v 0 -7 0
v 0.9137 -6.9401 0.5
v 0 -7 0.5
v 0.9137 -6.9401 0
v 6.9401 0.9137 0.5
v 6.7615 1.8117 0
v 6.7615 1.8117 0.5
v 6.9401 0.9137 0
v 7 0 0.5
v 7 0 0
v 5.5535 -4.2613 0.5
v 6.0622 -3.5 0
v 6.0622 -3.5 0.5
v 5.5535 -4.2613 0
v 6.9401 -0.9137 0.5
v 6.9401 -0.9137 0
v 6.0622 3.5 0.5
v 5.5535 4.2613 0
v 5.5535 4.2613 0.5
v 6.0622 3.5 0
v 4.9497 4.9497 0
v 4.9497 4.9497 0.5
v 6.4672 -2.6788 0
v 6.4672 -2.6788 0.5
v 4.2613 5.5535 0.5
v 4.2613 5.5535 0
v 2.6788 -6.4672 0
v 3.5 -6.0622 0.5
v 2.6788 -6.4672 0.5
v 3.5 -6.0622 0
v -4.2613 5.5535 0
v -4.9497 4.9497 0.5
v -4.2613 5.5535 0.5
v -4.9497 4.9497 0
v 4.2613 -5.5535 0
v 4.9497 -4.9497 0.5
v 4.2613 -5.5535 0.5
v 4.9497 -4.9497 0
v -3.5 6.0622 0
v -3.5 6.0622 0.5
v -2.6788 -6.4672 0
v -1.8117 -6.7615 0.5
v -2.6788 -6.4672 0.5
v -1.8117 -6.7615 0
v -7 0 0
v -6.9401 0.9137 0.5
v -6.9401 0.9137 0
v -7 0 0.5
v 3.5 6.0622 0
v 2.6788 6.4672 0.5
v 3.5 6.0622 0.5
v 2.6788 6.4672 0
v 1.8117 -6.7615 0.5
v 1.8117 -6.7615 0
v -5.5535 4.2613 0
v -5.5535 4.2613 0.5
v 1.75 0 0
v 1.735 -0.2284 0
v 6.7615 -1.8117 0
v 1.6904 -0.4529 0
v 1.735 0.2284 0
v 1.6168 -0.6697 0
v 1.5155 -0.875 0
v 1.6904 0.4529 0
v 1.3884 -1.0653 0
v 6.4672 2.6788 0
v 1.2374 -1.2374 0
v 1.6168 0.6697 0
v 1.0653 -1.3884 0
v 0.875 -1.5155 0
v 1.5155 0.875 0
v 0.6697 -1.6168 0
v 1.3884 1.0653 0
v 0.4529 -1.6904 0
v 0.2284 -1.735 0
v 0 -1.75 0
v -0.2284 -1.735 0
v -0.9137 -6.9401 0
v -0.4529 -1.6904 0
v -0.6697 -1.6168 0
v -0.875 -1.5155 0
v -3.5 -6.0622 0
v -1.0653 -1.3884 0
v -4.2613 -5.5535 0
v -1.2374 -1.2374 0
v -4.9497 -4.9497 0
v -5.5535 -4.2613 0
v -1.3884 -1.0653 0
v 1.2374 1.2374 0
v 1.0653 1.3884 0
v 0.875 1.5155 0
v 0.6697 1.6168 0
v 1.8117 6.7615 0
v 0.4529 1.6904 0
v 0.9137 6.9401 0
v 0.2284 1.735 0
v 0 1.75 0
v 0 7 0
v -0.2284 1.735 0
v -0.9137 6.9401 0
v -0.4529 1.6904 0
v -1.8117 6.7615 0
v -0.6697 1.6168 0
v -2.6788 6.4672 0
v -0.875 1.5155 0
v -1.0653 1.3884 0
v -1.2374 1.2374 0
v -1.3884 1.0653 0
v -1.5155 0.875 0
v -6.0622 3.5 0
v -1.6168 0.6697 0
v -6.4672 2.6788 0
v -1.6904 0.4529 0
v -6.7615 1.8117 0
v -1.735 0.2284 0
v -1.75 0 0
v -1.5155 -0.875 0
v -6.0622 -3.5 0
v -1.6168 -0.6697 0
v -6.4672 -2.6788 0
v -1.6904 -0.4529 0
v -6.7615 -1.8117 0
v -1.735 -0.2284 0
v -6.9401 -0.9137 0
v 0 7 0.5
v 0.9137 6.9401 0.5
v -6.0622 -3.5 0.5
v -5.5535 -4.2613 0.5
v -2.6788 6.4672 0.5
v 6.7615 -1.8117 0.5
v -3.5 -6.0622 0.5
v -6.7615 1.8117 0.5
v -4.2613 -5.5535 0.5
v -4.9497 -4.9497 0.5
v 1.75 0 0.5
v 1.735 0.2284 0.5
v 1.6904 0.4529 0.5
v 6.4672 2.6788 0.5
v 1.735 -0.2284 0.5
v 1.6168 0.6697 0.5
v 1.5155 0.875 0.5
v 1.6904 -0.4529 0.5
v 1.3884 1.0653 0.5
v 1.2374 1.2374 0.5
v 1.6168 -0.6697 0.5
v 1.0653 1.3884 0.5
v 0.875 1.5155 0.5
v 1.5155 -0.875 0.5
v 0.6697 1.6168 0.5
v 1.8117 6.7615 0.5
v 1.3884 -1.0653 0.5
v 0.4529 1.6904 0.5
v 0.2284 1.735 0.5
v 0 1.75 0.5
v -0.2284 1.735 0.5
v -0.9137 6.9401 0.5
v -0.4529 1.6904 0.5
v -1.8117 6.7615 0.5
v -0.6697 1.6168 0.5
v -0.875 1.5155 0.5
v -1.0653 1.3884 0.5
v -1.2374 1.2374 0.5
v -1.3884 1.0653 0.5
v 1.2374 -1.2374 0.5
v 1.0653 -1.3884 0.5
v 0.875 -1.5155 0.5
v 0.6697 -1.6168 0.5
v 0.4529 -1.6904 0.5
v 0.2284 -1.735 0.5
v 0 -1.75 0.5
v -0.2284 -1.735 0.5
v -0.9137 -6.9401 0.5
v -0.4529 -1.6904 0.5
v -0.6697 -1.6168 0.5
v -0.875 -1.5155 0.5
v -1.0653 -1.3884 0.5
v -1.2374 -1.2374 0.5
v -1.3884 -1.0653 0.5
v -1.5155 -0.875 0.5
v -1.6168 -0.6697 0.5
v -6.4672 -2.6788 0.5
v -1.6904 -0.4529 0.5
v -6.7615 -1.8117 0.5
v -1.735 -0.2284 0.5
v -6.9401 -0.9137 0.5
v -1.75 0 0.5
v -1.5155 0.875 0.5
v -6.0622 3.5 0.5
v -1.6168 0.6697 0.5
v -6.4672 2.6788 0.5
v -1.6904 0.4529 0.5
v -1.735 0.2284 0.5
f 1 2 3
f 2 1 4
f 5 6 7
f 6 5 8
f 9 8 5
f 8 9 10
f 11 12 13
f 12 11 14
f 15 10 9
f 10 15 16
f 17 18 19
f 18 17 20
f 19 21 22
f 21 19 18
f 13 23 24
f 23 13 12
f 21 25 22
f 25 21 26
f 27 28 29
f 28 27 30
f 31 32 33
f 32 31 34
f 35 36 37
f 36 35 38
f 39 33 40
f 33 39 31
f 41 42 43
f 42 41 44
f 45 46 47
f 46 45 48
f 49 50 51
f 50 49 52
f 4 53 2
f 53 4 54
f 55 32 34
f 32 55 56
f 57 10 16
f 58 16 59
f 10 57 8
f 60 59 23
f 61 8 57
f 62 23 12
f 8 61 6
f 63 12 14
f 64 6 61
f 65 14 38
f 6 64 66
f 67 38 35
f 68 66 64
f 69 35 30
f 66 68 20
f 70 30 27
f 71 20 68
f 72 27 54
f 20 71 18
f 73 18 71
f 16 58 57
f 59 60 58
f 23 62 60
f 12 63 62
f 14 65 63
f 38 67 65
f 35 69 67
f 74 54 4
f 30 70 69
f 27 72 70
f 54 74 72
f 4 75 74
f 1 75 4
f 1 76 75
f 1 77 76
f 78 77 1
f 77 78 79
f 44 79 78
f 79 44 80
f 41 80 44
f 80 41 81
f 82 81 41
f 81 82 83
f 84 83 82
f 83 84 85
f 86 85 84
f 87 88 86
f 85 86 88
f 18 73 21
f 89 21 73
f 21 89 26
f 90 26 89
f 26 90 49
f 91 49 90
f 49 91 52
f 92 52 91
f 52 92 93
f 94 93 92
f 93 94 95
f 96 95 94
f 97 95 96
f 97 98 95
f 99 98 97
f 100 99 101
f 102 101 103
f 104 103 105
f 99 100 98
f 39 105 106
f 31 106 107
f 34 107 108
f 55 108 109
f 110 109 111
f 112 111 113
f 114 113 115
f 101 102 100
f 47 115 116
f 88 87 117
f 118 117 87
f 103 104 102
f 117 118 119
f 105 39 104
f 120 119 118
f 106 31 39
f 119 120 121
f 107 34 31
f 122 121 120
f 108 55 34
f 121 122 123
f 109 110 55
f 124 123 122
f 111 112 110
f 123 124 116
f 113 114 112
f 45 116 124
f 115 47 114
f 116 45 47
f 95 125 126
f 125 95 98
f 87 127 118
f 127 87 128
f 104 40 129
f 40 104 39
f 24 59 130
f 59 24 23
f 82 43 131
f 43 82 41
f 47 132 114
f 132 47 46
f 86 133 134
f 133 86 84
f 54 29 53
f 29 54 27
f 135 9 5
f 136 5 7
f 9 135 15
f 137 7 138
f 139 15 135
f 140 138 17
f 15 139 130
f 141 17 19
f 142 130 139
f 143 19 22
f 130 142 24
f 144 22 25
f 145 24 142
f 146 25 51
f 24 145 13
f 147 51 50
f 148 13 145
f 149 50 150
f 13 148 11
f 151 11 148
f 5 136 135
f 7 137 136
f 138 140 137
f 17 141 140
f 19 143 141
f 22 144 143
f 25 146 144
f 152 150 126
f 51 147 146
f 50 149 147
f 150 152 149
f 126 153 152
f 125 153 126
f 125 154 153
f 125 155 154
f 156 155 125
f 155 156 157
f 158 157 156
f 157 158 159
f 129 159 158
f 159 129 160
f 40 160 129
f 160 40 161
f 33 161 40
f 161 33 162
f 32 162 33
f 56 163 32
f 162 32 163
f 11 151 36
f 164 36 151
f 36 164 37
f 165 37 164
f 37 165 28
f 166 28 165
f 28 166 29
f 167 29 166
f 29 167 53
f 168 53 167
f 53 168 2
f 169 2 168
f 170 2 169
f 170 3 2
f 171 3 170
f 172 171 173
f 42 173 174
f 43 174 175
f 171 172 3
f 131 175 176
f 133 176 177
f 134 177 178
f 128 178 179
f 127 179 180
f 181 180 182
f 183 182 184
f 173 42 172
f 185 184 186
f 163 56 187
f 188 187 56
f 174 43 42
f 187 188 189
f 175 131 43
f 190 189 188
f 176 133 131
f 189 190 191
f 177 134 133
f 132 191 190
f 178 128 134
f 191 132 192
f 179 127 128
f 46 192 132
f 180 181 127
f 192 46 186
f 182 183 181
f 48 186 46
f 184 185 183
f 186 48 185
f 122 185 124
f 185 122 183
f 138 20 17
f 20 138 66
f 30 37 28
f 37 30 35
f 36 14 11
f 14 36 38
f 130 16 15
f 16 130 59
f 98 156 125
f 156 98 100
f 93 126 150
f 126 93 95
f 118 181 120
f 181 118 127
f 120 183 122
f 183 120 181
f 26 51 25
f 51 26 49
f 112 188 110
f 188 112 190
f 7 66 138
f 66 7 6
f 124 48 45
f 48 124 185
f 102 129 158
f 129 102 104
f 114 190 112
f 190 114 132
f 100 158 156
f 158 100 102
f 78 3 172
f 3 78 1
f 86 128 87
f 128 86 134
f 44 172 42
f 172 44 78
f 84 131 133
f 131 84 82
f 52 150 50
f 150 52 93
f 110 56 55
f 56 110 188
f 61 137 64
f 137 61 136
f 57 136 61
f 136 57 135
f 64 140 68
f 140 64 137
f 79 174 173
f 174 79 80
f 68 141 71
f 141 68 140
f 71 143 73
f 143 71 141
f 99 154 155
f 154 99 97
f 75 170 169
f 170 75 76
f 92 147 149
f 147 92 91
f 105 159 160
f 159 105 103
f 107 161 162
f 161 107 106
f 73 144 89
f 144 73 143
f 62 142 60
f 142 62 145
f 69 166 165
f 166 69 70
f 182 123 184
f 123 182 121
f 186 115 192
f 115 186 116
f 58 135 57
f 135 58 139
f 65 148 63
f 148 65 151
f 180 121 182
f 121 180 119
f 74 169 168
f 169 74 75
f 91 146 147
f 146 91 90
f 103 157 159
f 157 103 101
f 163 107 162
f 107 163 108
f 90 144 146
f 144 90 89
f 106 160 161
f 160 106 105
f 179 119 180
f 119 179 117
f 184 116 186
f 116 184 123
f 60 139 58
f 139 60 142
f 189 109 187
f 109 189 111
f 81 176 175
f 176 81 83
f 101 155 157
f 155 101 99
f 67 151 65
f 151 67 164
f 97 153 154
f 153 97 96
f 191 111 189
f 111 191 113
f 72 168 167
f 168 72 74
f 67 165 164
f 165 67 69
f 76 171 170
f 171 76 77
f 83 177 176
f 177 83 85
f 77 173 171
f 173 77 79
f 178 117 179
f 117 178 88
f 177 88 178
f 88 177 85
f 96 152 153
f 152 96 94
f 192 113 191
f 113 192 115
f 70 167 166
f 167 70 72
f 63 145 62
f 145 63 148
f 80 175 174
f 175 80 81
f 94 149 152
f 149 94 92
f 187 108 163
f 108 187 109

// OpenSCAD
// file: parameters.scad
// =============================================================================
// Gen-BW — nightly 2026-10-10 (physics_scorer, honest magpylib watts)
// Stacked poles: two Ø20×5 per pocket (10 mm poles), 4 per rotor at R52, trading pole count for field — peak Bz at the copper rises to ≈0.73 T (vs 0.54 T on Gen-BR), which lets a thin 6.75 mm copper layer with a very deep 21 mm build carry the turns. But the electrical frequency halves, and the scorer puts it at about 45 % of Gen-BR: the thicker magnets do not make up for half the poles.
// Clocking 0 deg (magnets N facing S) + D-flat keyed bore + index notch + flip-symmetric hole map.
// Windable 2-piece bobbin; turns = physics_scorer turns_fit; copper only between flanges.
// Steel back-iron: 2× Ø134 × 6.35 mm (1/4") mild-steel discs (steel_backiron_disc.dxf); magnets sit ON the steel
// (through-pockets) -> score with --back-iron. Night 2026-10-10.
// =============================================================================
topology            = "dual_rotor";

// --- Wire / winding (physics_scorer winding-fit) -------------------------------
wire_awg            = 26;
wire_od             = 0.45;     // insulated OD mm (bare 0.405)
fill_realistic      = 0.65;     // insulated-wire area / window (DENSE layered wind with a jig; scorer cap 0.65)
turns               = 586;       // = physics_scorer turns_fit (do NOT raise)
coil_former_type    = "bobbin";
coil_core_inset     = 21.25;     // radial copper build: hub = copper boundary inset by this
wind_build_axial    = 0.0;      // nothing proud of the flanges
wind_build_radial   = 0.0;

// --- Bobbin (base + lid) ---------------------------------------------------------
coil_id_r           = 26.00;    // copper boundary sector
coil_od_r           = 74.00;
span_deg            = 52.72;    // = pitch - 2*asin((wall+0.85)/coil_id_r) -> >=1.2 mm stator web
former_web          = 6.75;     // copper height between flanges (TALL copper: steel keeps Bz up)
flange_t            = 0.80;     // >= 0.8 mm FDM wall rule (tall winds push on the flanges)
wall                = 0.80;     // flange lip beyond copper
former_bare_h       = former_web + 2 * flange_t;
coil_envelope_h     = former_bare_h + 2 * wind_build_axial;
tab_w               = 7.0;
tab_len             = 7.0;
tab_h               = former_bare_h / 2;
pin_d               = 1.9;      // 1.75 mm filament locating pin
coil_mount_r        = coil_od_r + 0.2 + 4.0;
lead_y              = 1.6;
lead_slot_w         = 0.9;
lead_groove_d       = 0.6;

// --- Gap -------------------------------------------------------------------------
run_clear           = 0.50;     // rotor face -> flange
gap_spacer_h        = run_clear + wind_build_axial;
m2m                 = coil_envelope_h + 2 * run_clear;   // rotor face to rotor face (= gap_sleeve length)

// --- Stator ----------------------------------------------------------------------
coil_stations       = 6;
bay_clear           = 0.25;
stator_thick        = former_bare_h;                        // bobbins flush both faces
stator_od           = 166;
shaft_clear_stator  = 14.0;     // stator is static; gap sleeve OD 12 spins inside

// --- Rotor(s) --------------------------------------------------------------------
magnet_Br           = 1.43;     // N52
magnet_d_large      = 20.0;
magnet_h_large      = 10.0;      // two O20x5 stacked per pocket
magnet_h_small      = 5.0;      // unused: no O5 pockets in this kit
halbach_magnetisation = "none";  // NO O5 assist magnets in this kit (scan: they lower the 4-pole score)
rotor_b_same_axis   = true;     // same-index magnets share one axis: N faces S across the gap
large_pocket_d      = 20.3;
small_pocket_d      = 5.3;
pocket_h            = 10.00;     // THROUGH the carrier: magnet back face sits on the steel disc (FLUSH seat: carrier = magnet height, magnet face level with the rotor face)
large_n             = 4;
R_large             = 52.0;
small_r_list        = [];       // no O5 pockets
carrier_od          = 134.0;
carrier_thick       = pocket_h;
hub_h               = 14.0;     // > steel_t + insert: radial set-screw clears the steel
hub_od              = 24.0;     // slim hub so the M4 brace rods fit at R~18 inside the coil ring
hub_insert_d        = 4.0;      // M3 heat-set insert, radial, bears on the D-flat
rotor_b_offset_deg  = 0.0;      // CLOCKING: magnets directly opposite
shaft_key           = "dflat";
dflat_depth         = 0.5;      // 8 mm shaft with 0.5 mm flat (7.5 across flat)
index_notch_d       = 3.0;

// --- Steel back-iron (buyable laser-cut) -------------------------------------------
steel_t             = 6.35;      // mild steel thickness (image method ignores it; sized from steel_flux.py so the return path stays well below saturation)
steel_center_hole   = 26.0;     // slips over the rotor hub (OD 24)
steel_od            = carrier_od;   // steel disc OD = rotor carrier OD

// --- Modular MAX interface ----------------------------------------------------------
shaft_bore          = 8.35;
dflat_x             = 4.0 - dflat_depth + (shaft_bore - 8.0) / 2;
bearing_d           = 21.85;
bearing_h           = 7.2;
m3_clear            = 3.5;
bolt_r_inner        = 30.0;     // M3 steel-disc clamp bolts (inside the magnet ring)
bolt_n_inner        = 4;
bolt_inner_angles   = [0, 90, 180, 270];
bolt_r_outer        = 63.0;     // second M3 steel-disc clamp ring
bolt_outer_angles   = [45, 135, 225, 315];
flange_bolt_r       = 73.0;     // frame rods: OUTSIDE the rotor OD (rotors spin inside them)
flange_bolt_n       = 6;
flange_bolt_offset  = 30.00;    // between coil stations -> never cuts a lead groove/tab
brace_r             = 18.0;
brace_d             = 4.3;      // temporary M4 jack rods (assembly only)
brace_n             = 4;
brace_angles        = [45, 135, 225, 315];          // flip-symmetric

spacer_pad_od       = 14.0;
spacer_pad_id       = m3_clear;
endbell_od          = 156.0;
endbell_thick       = 8.0;
endbell_shaft_clear = 10.0;
collar_h            = 10.0;
standoff_od         = 9.0;
frame_standoff_h    = run_clear + carrier_thick + hub_h + collar_h + 2.0;
sleeve_od           = 12.0;
plate_max_mm        = 410;

$fn = 64;
// main file
// Gen-BW — assembly gap shim, h = run_clear (rotor face -> flange); copper is inside the flanges
include <parameters.scad>;
$fn = 48;
difference() {
    cylinder(d=spacer_pad_od, h=gap_spacer_h);
    translate([0, 0, -0.1]) cylinder(d=spacer_pad_id, h=gap_spacer_h + 0.2);
}
